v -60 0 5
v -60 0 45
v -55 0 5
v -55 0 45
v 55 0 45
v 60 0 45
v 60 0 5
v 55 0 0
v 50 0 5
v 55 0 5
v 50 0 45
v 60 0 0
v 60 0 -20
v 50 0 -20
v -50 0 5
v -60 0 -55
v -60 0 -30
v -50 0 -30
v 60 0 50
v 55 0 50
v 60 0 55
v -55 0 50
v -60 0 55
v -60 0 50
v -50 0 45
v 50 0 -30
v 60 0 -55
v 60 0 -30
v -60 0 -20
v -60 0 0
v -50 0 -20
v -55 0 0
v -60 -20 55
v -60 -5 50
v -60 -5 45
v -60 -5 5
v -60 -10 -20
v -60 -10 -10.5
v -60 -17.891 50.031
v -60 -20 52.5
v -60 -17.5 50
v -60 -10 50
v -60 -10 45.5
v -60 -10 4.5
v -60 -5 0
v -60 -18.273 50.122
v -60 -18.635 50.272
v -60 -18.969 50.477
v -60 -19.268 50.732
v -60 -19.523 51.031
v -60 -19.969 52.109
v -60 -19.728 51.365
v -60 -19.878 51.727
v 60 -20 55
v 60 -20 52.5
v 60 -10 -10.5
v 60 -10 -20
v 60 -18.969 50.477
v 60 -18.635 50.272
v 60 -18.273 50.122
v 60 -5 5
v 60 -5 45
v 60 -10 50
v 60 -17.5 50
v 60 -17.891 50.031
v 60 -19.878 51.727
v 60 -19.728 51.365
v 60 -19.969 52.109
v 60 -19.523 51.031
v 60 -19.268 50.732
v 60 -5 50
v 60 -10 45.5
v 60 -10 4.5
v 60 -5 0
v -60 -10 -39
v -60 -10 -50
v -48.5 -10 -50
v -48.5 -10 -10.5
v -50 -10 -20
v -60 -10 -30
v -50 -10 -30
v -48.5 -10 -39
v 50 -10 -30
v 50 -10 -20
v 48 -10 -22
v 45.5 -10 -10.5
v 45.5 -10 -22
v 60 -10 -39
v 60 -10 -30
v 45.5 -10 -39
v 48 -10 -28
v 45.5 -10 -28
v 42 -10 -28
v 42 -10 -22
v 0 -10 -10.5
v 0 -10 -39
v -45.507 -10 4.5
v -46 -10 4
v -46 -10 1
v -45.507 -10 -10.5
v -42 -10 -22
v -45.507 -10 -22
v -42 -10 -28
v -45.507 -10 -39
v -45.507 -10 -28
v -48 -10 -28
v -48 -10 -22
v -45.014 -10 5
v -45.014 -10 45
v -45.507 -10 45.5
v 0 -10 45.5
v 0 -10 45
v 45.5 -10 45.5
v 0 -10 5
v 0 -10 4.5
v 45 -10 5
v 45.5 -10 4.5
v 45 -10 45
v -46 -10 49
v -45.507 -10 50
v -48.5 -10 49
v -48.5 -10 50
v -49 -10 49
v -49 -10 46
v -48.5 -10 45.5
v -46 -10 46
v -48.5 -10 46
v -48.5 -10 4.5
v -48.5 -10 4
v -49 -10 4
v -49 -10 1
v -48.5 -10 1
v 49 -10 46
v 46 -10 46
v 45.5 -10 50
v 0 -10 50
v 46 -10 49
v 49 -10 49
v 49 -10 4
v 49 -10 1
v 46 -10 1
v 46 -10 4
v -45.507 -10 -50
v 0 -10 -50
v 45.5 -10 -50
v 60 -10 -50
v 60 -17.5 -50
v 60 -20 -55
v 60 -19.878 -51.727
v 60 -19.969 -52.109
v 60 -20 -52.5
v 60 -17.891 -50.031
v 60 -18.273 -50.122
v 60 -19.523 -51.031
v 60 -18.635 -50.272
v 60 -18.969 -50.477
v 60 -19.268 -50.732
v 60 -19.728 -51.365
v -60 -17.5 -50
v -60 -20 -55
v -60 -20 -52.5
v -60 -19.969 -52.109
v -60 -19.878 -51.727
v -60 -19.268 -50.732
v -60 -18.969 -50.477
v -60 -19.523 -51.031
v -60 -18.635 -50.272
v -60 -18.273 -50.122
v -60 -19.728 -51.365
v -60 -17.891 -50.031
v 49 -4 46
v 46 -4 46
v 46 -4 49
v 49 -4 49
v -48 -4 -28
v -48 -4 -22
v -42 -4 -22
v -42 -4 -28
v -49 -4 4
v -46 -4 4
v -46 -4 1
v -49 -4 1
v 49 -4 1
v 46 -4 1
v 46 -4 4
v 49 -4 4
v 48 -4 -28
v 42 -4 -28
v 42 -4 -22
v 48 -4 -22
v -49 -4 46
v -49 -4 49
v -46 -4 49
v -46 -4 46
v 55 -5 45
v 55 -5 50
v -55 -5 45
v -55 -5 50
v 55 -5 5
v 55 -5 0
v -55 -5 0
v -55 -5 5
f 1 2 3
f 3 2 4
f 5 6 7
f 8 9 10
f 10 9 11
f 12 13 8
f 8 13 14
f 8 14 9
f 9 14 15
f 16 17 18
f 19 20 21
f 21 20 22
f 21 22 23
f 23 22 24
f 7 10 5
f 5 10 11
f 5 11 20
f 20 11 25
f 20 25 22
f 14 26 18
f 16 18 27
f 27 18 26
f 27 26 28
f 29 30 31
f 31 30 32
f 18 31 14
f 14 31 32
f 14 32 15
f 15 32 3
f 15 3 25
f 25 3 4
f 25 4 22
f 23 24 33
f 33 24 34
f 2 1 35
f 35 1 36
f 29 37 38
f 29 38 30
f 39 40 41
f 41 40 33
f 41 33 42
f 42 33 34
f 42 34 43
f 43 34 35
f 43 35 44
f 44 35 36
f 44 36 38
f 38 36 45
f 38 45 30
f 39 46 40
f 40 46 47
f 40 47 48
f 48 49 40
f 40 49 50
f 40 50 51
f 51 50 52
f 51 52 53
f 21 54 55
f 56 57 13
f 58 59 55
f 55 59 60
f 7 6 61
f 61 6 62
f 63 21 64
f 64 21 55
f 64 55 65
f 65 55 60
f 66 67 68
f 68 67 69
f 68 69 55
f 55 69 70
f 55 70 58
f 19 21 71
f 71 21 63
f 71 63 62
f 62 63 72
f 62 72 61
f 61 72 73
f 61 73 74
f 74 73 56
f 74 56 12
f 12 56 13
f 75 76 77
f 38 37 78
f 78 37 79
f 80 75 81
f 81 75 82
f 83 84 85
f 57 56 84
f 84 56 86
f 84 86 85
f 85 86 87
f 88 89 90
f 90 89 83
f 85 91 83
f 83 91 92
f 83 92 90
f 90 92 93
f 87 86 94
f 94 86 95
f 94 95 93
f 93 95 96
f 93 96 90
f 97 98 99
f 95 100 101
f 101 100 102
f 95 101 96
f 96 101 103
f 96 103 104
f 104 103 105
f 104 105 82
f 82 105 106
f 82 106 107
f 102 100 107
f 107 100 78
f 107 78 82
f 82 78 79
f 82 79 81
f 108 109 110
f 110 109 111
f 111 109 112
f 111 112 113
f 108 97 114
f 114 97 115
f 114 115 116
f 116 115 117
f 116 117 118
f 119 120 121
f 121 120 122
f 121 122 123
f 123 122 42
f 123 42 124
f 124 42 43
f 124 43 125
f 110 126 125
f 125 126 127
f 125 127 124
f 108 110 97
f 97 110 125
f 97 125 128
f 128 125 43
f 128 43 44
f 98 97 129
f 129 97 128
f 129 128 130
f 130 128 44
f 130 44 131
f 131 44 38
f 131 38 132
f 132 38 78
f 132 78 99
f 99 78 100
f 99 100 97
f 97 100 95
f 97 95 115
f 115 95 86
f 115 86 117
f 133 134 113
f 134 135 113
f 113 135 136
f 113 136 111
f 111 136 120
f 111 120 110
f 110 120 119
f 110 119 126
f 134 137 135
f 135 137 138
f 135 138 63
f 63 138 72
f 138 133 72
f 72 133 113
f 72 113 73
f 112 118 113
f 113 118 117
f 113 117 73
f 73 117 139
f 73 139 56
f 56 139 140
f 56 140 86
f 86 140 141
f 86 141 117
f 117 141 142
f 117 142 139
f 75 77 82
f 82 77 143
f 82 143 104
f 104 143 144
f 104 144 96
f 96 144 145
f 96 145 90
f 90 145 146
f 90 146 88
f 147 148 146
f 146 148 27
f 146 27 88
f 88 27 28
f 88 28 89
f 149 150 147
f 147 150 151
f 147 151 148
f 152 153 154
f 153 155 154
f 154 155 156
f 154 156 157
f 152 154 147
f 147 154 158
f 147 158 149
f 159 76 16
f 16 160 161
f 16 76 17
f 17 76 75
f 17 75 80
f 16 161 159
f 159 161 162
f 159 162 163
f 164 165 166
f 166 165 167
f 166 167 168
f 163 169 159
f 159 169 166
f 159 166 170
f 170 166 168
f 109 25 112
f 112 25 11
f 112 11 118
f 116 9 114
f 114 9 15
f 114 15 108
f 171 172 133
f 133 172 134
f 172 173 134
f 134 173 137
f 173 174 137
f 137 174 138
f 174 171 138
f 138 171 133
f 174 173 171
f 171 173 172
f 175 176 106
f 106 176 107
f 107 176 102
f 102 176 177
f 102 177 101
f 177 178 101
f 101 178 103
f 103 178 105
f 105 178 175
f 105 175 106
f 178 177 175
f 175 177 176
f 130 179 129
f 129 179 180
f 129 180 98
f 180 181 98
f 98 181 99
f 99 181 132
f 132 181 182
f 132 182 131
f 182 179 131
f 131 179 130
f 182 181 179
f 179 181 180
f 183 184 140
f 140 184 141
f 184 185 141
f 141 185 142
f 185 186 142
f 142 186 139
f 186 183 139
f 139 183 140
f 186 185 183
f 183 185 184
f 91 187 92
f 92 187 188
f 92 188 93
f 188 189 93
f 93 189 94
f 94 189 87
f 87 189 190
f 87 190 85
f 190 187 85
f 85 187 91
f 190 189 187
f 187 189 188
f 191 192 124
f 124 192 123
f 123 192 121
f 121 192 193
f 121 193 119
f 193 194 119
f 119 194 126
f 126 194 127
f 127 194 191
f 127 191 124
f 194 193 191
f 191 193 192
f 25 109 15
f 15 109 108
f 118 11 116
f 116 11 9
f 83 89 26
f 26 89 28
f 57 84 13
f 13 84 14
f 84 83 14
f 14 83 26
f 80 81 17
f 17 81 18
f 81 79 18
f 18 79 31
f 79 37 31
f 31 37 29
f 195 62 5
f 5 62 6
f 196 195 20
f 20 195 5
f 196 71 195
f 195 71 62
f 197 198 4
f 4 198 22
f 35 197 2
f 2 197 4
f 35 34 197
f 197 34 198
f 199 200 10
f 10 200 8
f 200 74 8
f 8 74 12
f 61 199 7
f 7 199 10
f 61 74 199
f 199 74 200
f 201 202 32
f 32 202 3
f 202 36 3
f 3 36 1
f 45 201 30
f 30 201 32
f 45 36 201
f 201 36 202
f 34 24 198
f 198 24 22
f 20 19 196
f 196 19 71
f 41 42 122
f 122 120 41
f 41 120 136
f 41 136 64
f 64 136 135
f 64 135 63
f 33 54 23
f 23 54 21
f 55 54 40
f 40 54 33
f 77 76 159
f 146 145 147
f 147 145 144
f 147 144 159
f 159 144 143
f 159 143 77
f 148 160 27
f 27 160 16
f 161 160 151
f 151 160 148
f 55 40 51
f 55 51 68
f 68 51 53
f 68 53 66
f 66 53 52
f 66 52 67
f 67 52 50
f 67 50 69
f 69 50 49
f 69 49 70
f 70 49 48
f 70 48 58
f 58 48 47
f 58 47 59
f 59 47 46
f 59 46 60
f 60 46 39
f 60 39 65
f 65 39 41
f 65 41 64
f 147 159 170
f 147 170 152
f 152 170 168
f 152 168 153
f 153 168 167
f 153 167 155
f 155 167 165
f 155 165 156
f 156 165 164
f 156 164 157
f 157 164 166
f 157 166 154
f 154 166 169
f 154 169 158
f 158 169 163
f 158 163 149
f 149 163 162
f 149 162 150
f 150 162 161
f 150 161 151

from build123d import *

# Parameters (mm, degrees)
BOSS_EXTRUDE1_DEPTH = 10
CUT_EXTRUDE1_DEPTH  = 10
SKETCH2_3_W         = 3
SKETCH2_3_H         = 3
SKETCH2_3_W_2       = 6
SKETCH2_3_H_2       = 6
CUT_EXTRUDE2_DEPTH  = 6
CHAMFER2_SIZE       = 5
CHAMFER2_SIZE_2     = 10.028448541
CHAMFER3_SIZE2      = 4.999988835
CHAMFER3_SIZE       = 10
SKETCH1_6_W         = 6
SKETCH1_6_H         = 3
SKETCH1_6_W_2       = 10
SKETCH1_6_H_2       = 10
SKETCH1_6_H_3       = 6
CUT_EXTRUDE3_DEPTH  = 10
SKETCH1_7_W         = 5
SKETCH1_7_H         = 5
CUT_EXTRUDE4_DEPTH  = 5
SKETCH5_W           = 120
SKETCH5_H           = 5
BOSS_EXTRUDE3_DEPTH = 20
FILLET2_R           = 2.5


# Some blends are built 0.0001 mm under size
with BuildPart() as part:
    # Sketch1 → Boss-Extrude1 (new body)
    with BuildSketch(Plane(origin=(0, 0, 0), x_dir=(1, 0, 0), z_dir=(0, 1, 0))):
        Polygon((-60, 50), (-60, -2.5), (-60, -50), (0, -50), (60, -50), (60, 50), (0, 50), align=None)
    extrude(amount=-BOSS_EXTRUDE1_DEPTH)

    # Sketch2 → Cut-Extrude1 (cut)
    with BuildSketch(Plane.XZ.offset(10)):
        Polygon((45, 45), (-45, 45), (-45, 5), (-40, 5), (45, 5), (45, 25), align=None)
    extrude(amount=-CUT_EXTRUDE1_DEPTH, mode=Mode.SUBTRACT)

    # Sketch2<3> → Cut-Extrude2 (cut)
    with BuildSketch(Plane.XZ.offset(10)):
        with Locations((47.5, 47.5)):
            Rectangle(SKETCH2_3_W, SKETCH2_3_H)
        with Locations((-47.5, 2.5)):
            Rectangle(SKETCH2_3_W, SKETCH2_3_H)
        with Locations((47.5, 2.5)):
            Rectangle(SKETCH2_3_W, SKETCH2_3_H)
        with Locations((45, -25)):
            Rectangle(SKETCH2_3_W_2, SKETCH2_3_H_2)
        with Locations((-47.5, 47.5)):
            Rectangle(SKETCH2_3_W, SKETCH2_3_H)
        with Locations((-45, -25)):
            Rectangle(SKETCH2_3_W_2, SKETCH2_3_H_2)
    extrude(amount=-CUT_EXTRUDE2_DEPTH, mode=Mode.SUBTRACT)

    # Chamfer2
    # the kernel refuses this chamfer: 10.028448541, 5 mm, written as the material it takes off along each edge
    with BuildSketch(Plane(origin=(-45, 0, 45), x_dir=(-0.9976061957759285, 0.06915112543899754, 0), z_dir=(0, 0, -1))) as chamfer2_piece_1:
        Polygon((CHAMFER2_SIZE * 0.997606195776, -CHAMFER2_SIZE * 0.069151125439), (-CHAMFER2_SIZE_2 * 0.069151125441, -CHAMFER2_SIZE_2 * 0.997606195805), (0, 0), align=None)
    extrude(amount=40, mode=Mode.SUBTRACT)

    # Chamfer3
    chamfer3_edges = [part.edges().sort_by_distance(p)[0] for p in [
        (45, 0, 25),
    ]]
    chamfer3_side = [part.faces().sort_by_distance(p)[0] for p in [
        (45, -0.099999777, 25),
    ]]
    chamfer(chamfer3_edges, length=CHAMFER3_SIZE - 0.0001, length2=CHAMFER3_SIZE2 - 0.0001, reference=chamfer3_side[0])  # a hair under: the kernel refuses the full size

    # Sketch1<6> → Cut-Extrude3 (cut)
    # profile 1 of 6: a face of its own
    with BuildSketch(Plane(origin=(0, 0, 0), x_dir=(1, 0, 0), z_dir=(0, 1, 0))):
        Polygon((-50, 25), (-50, 30), (-60, 30), (-60, 25), (-58, 25), (-58, 28), (-52, 28), (-52, 25), align=None)
    # profile 2 of 6: a face of its own
    with BuildSketch(Plane(origin=(0, 0, 0), x_dir=(1, 0, 0), z_dir=(0, 1, 0))):
        with Locations((-55, 26.5)):
            Rectangle(SKETCH1_6_W, SKETCH1_6_H)
    # profile 3 of 6: a face of its own
    with BuildSketch(Plane(origin=(0, 0, 0), x_dir=(1, 0, 0), z_dir=(0, 1, 0))):
        with Locations((-55, 23.5)):
            Rectangle(SKETCH1_6_W, SKETCH1_6_H)
    # profile 4 of 6: a face of its own
    with BuildSketch(Plane(origin=(0, 0, 0), x_dir=(1, 0, 0), z_dir=(0, 1, 0))):
        Polygon((-50, 20), (-50, 25), (-52, 25), (-52, 22), (-58, 22), (-58, 25), (-60, 25), (-60, 20), (-55, 20), align=None)
    # profile 5 of 6: a face of its own
    with BuildSketch(Plane(origin=(0, 0, 0), x_dir=(1, 0, 0), z_dir=(0, 1, 0))):
        with Locations((55, 25)):
            Rectangle(SKETCH1_6_W_2, SKETCH1_6_H_2)
        with Locations((55, 25)):
            Rectangle(SKETCH1_6_W, SKETCH1_6_H_3, mode=Mode.SUBTRACT)
    # profile 6 of 6: a face of its own
    with BuildSketch(Plane(origin=(0, 0, 0), x_dir=(1, 0, 0), z_dir=(0, 1, 0))):
        with Locations((55, 25)):
            Rectangle(SKETCH1_6_W, SKETCH1_6_H_3)
    extrude(amount=-CUT_EXTRUDE3_DEPTH, mode=Mode.SUBTRACT)

    # Sketch1<7> → Cut-Extrude4 (cut)
    with BuildSketch(Plane(origin=(0, 0, 0), x_dir=(1, 0, 0), z_dir=(0, 1, 0))):
        with Locations((57.5, -2.5)):
            Rectangle(SKETCH1_7_W, SKETCH1_7_H)
        with Locations((57.5, -47.5)):
            Rectangle(SKETCH1_7_W, SKETCH1_7_H)
        with Locations((-57.5, -47.5)):
            Rectangle(SKETCH1_7_W, SKETCH1_7_H)
        Polygon((-55, -5), (-55, 0), (-60, 0), (-60, -2.5), (-60, -5), align=None)
    extrude(amount=-CUT_EXTRUDE4_DEPTH, mode=Mode.SUBTRACT)

    # Sketch5 → Boss-Extrude3 (add)
    with BuildSketch(Plane(origin=(0, 0, 0), x_dir=(1, 0, 0), z_dir=(0, 1, 0))):
        with Locations((0, -52.5)):
            Rectangle(SKETCH5_W, SKETCH5_H)
        with Locations((0, 52.5)):
            Rectangle(SKETCH5_W, SKETCH5_H)
    extrude(amount=-BOSS_EXTRUDE3_DEPTH)

    # Fillet2
    fillet2_edges = [part.edges().sort_by_distance(p)[0] for p in [
        (0, -20, 50),
        (0, -20, -50),
    ]]
    fillet(fillet2_edges, radius=FILLET2_R)


solid = part.part
